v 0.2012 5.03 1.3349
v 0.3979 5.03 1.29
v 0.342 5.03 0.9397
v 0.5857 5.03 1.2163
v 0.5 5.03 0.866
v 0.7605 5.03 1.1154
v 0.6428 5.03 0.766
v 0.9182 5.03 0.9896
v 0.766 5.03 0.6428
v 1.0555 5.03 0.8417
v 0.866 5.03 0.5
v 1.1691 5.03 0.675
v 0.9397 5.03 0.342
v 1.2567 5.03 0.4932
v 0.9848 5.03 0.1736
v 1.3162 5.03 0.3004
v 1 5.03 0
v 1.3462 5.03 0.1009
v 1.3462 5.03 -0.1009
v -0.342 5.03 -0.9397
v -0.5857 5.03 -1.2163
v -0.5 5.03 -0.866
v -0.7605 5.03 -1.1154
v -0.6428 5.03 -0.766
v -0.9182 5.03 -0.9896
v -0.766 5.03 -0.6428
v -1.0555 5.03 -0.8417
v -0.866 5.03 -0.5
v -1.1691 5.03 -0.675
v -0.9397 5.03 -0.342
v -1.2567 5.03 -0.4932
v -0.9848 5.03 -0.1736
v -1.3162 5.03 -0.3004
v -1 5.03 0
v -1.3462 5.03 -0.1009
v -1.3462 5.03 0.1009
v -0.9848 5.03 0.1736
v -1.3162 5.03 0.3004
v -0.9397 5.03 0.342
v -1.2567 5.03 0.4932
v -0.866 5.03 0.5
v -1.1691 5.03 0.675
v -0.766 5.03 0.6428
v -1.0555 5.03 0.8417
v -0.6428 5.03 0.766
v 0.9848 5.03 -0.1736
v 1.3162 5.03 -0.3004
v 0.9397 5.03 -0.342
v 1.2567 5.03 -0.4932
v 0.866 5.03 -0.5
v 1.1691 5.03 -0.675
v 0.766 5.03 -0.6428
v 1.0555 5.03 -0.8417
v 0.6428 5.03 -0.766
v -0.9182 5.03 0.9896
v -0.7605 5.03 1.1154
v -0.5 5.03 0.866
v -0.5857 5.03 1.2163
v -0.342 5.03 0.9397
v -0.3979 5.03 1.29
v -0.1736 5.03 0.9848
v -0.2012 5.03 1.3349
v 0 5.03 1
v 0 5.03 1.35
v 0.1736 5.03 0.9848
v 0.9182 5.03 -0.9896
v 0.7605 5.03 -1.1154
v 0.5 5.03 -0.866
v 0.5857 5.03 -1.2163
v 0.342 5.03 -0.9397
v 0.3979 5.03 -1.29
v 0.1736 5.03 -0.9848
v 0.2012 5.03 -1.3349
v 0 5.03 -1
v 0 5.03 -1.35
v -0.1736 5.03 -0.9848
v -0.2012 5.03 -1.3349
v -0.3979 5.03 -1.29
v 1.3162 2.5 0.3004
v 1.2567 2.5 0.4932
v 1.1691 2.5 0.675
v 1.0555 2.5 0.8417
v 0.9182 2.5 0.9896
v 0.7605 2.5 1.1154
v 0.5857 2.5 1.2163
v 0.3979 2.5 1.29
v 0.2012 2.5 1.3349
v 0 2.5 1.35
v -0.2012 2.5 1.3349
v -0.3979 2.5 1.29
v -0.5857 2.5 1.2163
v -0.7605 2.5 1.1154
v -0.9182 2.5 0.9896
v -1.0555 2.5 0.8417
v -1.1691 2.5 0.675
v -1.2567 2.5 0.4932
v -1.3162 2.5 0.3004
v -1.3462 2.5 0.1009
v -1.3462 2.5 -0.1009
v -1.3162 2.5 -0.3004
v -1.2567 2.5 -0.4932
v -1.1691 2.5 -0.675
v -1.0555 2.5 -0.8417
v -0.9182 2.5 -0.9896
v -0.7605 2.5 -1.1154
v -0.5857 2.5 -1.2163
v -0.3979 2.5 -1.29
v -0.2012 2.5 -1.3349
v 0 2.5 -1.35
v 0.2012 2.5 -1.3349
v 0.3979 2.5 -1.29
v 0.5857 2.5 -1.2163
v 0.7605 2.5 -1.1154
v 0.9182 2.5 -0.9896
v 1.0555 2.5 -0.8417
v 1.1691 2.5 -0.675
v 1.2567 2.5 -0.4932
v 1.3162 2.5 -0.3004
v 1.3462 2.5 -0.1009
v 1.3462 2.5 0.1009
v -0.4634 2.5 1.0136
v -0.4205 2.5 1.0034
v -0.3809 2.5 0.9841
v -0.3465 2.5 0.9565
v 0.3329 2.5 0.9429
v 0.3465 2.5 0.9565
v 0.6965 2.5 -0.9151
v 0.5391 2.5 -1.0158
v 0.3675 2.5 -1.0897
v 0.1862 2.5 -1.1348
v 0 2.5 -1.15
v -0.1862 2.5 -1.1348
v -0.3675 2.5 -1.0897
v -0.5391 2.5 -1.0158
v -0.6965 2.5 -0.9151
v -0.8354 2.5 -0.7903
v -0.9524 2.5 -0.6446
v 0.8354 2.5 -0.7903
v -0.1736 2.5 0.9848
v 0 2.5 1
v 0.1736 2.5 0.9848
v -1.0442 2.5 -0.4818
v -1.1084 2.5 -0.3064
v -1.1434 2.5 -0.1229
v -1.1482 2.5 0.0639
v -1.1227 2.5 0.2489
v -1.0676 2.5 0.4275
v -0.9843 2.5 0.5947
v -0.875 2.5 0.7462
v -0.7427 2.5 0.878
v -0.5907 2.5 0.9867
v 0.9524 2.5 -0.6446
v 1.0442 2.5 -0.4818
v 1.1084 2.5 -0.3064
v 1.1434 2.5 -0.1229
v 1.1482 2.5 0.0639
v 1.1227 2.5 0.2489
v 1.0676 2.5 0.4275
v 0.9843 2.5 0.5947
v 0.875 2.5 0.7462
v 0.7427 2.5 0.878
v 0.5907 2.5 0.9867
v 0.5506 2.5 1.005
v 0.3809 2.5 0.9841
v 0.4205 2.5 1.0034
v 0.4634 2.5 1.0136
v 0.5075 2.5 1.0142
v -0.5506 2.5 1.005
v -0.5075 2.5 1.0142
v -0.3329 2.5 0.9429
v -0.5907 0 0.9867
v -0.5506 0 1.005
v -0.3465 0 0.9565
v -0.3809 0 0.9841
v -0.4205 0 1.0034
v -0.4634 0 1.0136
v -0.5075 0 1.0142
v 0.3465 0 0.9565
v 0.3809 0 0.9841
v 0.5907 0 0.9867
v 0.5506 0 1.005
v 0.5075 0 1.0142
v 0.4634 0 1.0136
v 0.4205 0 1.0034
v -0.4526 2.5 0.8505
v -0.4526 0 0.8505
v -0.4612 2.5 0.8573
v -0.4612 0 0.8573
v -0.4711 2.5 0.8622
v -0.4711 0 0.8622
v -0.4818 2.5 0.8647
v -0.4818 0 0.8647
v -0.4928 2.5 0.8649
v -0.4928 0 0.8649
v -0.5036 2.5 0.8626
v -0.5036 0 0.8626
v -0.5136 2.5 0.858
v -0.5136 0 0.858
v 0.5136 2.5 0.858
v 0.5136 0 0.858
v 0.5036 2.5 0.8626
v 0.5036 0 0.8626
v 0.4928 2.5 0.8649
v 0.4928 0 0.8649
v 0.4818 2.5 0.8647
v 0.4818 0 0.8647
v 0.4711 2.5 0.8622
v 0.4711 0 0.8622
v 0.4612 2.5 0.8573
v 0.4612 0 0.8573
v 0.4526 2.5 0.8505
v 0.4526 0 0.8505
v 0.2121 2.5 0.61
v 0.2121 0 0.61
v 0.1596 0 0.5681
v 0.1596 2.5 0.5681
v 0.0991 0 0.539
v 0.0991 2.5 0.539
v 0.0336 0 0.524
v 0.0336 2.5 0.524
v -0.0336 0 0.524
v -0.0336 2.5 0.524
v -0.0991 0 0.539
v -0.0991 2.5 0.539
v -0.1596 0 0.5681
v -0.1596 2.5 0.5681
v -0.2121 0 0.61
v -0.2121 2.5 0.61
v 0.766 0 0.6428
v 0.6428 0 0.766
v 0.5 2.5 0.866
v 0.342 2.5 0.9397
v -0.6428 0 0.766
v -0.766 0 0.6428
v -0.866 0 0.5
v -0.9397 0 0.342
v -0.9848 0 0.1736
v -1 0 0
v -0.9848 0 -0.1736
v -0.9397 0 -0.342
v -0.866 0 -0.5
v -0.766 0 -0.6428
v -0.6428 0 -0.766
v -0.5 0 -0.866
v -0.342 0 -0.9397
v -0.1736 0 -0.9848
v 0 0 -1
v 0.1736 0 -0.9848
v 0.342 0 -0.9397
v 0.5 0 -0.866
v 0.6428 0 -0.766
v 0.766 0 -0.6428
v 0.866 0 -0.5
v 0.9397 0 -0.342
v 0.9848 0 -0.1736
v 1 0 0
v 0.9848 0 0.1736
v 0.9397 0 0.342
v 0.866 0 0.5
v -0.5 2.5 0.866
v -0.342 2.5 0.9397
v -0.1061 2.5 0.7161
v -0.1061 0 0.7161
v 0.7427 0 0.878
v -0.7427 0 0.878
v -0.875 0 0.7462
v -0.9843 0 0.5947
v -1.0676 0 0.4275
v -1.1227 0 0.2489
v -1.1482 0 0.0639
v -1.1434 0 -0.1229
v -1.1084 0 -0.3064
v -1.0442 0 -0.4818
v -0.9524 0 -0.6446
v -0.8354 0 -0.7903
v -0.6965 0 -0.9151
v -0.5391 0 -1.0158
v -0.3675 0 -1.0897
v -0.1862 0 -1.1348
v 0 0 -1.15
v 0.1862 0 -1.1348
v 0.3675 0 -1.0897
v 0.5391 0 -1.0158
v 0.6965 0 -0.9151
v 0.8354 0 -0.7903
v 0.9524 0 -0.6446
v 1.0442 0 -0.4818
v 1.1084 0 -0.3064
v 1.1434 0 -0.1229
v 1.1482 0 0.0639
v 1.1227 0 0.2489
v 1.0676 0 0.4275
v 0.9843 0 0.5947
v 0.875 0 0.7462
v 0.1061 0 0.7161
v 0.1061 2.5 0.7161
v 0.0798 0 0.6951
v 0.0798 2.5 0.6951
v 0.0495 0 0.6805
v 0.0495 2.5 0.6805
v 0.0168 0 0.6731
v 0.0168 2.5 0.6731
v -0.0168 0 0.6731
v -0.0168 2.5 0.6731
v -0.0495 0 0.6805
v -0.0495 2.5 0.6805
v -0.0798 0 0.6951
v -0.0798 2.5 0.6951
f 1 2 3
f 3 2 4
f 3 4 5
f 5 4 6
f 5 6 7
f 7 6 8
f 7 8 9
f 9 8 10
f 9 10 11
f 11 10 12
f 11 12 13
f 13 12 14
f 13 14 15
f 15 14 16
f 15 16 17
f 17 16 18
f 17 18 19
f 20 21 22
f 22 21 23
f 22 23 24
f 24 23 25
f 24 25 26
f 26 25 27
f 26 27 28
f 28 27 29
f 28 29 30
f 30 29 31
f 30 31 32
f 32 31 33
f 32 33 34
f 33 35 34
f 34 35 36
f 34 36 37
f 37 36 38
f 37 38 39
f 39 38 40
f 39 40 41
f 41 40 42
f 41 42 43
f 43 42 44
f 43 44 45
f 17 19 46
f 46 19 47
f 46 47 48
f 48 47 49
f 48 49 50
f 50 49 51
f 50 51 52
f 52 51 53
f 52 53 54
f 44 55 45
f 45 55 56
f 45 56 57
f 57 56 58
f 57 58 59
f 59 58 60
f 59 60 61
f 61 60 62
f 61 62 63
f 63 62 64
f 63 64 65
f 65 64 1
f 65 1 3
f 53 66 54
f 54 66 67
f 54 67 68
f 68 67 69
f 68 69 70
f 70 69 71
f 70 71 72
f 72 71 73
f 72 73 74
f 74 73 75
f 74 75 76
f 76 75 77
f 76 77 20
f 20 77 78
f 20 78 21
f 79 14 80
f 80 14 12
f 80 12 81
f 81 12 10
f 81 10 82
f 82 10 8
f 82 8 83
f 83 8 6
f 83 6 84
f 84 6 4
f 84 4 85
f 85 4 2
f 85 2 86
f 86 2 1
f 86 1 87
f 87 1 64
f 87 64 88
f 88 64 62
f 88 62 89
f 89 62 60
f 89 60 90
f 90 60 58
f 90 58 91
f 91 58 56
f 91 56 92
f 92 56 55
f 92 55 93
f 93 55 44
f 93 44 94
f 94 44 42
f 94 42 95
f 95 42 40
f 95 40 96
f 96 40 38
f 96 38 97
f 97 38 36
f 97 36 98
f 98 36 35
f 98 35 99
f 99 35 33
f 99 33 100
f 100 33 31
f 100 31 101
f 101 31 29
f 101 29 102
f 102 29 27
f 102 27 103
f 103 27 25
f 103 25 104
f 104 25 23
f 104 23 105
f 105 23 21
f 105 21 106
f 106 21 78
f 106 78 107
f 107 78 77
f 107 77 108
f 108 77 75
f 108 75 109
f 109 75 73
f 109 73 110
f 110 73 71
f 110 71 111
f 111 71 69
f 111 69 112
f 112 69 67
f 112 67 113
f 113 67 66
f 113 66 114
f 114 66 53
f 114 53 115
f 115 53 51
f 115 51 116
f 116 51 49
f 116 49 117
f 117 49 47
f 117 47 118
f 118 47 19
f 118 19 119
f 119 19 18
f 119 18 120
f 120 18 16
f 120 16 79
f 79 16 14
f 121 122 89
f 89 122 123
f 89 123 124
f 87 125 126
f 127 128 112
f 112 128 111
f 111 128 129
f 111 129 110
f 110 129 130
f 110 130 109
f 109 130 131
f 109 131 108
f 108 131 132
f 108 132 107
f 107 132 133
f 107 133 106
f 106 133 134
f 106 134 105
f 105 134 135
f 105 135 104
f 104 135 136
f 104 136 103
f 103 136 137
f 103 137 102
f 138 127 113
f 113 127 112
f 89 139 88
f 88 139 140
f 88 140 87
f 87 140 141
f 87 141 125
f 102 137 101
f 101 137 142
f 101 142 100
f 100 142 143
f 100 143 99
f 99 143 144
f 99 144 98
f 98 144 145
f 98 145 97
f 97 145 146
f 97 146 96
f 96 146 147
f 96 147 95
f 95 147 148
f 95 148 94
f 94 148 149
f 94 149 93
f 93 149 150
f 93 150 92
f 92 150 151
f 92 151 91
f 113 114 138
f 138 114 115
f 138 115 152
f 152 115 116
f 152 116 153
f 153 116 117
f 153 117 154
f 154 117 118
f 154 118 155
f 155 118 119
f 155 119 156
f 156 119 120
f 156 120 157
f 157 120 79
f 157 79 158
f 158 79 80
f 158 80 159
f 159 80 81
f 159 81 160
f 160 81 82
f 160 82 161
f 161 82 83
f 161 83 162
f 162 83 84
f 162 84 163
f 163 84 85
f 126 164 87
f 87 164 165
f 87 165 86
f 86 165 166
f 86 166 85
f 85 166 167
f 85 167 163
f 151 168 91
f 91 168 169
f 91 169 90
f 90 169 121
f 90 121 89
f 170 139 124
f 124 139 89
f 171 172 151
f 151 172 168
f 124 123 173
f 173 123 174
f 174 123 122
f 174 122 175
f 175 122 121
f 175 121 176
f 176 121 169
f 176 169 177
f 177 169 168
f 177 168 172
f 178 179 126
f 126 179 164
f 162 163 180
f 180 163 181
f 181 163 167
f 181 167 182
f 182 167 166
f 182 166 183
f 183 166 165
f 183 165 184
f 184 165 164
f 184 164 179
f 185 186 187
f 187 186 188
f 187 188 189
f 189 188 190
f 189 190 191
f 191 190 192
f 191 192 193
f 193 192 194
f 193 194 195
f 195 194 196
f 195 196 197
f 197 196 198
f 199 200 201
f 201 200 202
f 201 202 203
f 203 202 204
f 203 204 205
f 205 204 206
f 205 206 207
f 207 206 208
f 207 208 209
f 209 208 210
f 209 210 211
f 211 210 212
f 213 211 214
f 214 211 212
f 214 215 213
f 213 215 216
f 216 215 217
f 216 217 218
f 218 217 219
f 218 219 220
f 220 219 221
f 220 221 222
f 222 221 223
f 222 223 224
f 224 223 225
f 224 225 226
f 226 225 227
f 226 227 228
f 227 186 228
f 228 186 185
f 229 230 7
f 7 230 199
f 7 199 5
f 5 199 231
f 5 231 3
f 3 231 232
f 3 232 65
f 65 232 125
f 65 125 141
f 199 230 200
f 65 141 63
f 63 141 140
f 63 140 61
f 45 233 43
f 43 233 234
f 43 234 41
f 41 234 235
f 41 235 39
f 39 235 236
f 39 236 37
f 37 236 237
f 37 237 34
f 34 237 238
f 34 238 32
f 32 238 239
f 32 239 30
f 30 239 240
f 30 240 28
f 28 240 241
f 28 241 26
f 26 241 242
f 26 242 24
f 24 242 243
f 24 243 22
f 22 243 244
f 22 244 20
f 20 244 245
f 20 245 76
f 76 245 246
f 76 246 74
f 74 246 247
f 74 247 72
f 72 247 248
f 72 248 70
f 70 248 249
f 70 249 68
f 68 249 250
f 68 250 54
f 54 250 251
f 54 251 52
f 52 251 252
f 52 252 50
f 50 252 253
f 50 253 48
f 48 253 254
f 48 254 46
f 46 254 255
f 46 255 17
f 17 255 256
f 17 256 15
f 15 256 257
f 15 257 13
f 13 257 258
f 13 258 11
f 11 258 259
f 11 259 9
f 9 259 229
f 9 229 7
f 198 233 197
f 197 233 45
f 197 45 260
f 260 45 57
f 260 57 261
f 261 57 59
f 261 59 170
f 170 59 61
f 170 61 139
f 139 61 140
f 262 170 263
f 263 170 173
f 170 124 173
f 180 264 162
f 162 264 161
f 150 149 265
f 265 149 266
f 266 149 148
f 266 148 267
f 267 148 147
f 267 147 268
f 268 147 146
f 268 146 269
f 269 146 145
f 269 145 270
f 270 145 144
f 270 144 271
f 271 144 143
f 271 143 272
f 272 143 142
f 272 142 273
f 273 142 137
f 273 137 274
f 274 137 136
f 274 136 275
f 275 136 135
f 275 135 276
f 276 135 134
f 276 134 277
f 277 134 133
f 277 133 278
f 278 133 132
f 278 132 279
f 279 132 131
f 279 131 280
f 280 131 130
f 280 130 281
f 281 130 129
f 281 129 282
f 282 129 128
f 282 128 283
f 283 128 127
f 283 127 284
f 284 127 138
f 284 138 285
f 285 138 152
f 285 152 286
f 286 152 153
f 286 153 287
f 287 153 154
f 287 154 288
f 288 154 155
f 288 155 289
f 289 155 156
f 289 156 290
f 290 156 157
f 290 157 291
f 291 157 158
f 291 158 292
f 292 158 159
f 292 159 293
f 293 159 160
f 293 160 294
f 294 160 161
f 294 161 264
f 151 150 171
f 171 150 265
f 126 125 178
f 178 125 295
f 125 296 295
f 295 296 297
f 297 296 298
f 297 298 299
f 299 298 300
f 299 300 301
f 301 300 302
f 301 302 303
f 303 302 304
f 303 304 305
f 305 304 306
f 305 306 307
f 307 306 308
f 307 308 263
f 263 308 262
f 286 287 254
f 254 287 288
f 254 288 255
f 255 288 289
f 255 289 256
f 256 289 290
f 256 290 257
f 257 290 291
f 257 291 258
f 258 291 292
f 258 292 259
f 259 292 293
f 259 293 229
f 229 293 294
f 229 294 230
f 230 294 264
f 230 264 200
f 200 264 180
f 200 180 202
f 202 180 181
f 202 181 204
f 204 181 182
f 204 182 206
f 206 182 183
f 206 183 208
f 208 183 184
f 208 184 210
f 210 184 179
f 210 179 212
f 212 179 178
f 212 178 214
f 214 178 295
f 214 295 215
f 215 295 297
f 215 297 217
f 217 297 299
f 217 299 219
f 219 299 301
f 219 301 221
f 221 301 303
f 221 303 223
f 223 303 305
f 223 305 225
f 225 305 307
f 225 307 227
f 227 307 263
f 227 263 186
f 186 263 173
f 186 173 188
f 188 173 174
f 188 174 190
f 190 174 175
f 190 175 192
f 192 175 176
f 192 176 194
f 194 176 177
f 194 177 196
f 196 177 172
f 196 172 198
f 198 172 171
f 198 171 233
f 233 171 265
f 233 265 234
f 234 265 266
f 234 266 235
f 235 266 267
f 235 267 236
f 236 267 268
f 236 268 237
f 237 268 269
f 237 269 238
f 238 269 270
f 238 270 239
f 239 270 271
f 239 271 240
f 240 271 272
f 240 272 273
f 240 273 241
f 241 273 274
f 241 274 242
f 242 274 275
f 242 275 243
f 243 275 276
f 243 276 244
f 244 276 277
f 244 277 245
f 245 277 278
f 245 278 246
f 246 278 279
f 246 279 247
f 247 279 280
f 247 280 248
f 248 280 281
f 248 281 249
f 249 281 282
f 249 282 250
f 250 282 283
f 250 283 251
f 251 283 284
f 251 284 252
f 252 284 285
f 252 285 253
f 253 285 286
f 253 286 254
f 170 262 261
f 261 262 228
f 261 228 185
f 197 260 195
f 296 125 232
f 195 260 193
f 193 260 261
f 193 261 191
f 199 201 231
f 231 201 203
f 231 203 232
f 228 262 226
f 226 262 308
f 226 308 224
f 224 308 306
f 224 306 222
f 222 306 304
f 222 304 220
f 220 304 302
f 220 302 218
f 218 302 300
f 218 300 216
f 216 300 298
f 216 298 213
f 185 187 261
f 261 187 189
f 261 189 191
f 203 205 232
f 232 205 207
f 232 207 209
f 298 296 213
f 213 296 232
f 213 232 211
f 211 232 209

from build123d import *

# Parameters (mm, degrees)
BOSS_EXTRUDE1_DEPTH = 2.5
FILLET1_R           = 0.05
FILLET2_R           = 0.2
SKETCH2_R           = 1.35
SKETCH2_R_2         = 1
BOSS_EXTRUDE2_DEPTH = 2.53


with BuildPart() as part:
    # Sketch1 → Boss-Extrude1 (new body)
    with BuildSketch(Plane(origin=(0, 0, 0), x_dir=(1, 0, 0), z_dir=(0, 1, 0))):
        with BuildLine():
            Line((-0.448807004, -1.058807004), (-0.106066017, -0.716066017))
            ThreePointArc((-0.106066017, -0.716066017), (0, -0.672132034), (0.106066017, -0.716066017))
            Line((0.106066017, -0.716066017), (0.448807004, -1.058807004))
            ThreePointArc((0.448807004, -1.058807004), (0, 1.15), (-0.448807004, -1.058807004))
        make_face()
        with BuildLine():
            Line((-0.479612457, -0.877480422), (-0.212132034, -0.61))
            ThreePointArc((-0.212132034, -0.61), (0, -0.522132034), (0.212132034, -0.61))
            Line((0.212132034, -0.61), (0.479612457, -0.877480422))
            ThreePointArc((0.479612457, -0.877480422), (0, 1), (-0.479612457, -0.877480422))
        make_face(mode=Mode.SUBTRACT)
    extrude(amount=BOSS_EXTRUDE1_DEPTH)

    # Fillet1
    fillet1_edges = [part.edges().sort_by_distance(p)[0] for p in [
        (0.479612457, 1.25, 0.877480422),
        (-0.479612457, 1.25, 0.877480422),
    ]]
    fillet(fillet1_edges, radius=FILLET1_R)

    # Fillet2
    fillet2_edges = [part.edges().sort_by_distance(p)[0] for p in [
        (-0.448807004, 1.25, 1.058807004),
        (0.448807004, 1.25, 1.058807004),
    ]]
    fillet(fillet2_edges, radius=FILLET2_R)

    # Sketch2 → Boss-Extrude2 (add)
    with BuildSketch(Plane(origin=(0, 2.5, 0), x_dir=(1, 0, 0), z_dir=(0, 1, 0))):
        Circle(SKETCH2_R)
        Circle(SKETCH2_R_2, mode=Mode.SUBTRACT)
    extrude(amount=BOSS_EXTRUDE2_DEPTH)


solid = part.part
